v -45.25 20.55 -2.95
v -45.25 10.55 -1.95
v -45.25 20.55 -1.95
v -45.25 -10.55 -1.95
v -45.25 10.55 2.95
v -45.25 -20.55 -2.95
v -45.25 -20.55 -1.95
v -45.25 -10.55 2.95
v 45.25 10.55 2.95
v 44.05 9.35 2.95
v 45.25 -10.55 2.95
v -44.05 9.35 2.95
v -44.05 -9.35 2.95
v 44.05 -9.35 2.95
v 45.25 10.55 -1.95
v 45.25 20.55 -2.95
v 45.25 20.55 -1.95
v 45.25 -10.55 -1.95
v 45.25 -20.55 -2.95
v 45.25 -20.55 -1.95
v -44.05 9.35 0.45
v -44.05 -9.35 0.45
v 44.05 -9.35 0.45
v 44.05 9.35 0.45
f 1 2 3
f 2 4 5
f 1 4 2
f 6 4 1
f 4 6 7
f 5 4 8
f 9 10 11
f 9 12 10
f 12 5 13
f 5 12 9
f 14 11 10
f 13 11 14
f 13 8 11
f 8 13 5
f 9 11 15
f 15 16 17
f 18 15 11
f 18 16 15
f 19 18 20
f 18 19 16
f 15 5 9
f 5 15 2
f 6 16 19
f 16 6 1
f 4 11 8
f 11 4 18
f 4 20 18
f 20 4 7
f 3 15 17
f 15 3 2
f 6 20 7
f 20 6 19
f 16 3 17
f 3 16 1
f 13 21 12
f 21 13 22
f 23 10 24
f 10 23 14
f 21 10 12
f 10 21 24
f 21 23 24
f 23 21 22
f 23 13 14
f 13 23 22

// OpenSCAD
// file: ../lib/util.scad
function repeat(x, c) = [for (i = [1 : c]) x];

module cube_centered_xy(s) {
	translate([0, 0, s[2]/2]) cube(s, center=true);
}

module cube_shell(size, wall_thickness, center=false) {
	if (center) {
		cube_shell_int(size, wall_thickness);
	} else {
		translate([size[0]/2 + wall_thickness, size[1]/2 + wall_thickness, 0])
		cube_shell_int(size, wall_thickness);
	}
}

module cube_shell_int(size, wall_thickness) {
	difference() {
		cube_centered_xy(size + [wall_thickness*2, wall_thickness*2, wall_thickness]);
		translate([0, 0, wall_thickness]) cube_centered_xy(size + [0, 0, 0.001]);
	}
}

module rotate_all(increment=90) {
	for (i = [0 : increment : 360]) {
		rotate(i) children();
	}
}

module mirror_all() {
	children();
	scale([-1, 1, 1]) children();
	scale([1, -1, 1]) children();
	scale([-1, -1, 1]) children();
}
// main file
//88.1 18.7 

use <../lib/util.scad>;

thickness = 1.2;
length = 88.1;
width = 18.7;
height = 2.5;
base_height = 1;
base_width = 10;

size = [length, width, height];
outer_size = size + repeat(thickness*2, 3) + [0, 0, base_height];

difference() {
	union() {
		cube(outer_size, center=true);  
		translate([0, 0, -outer_size[2]/2 + base_height/2]) cube([outer_size[0], outer_size[1] + base_width*2, base_height], center=true);
	}
	translate([0, 0, base_height/2+thickness+0.001]) cube(size + [0, 0, 0.002], center=true);
}
